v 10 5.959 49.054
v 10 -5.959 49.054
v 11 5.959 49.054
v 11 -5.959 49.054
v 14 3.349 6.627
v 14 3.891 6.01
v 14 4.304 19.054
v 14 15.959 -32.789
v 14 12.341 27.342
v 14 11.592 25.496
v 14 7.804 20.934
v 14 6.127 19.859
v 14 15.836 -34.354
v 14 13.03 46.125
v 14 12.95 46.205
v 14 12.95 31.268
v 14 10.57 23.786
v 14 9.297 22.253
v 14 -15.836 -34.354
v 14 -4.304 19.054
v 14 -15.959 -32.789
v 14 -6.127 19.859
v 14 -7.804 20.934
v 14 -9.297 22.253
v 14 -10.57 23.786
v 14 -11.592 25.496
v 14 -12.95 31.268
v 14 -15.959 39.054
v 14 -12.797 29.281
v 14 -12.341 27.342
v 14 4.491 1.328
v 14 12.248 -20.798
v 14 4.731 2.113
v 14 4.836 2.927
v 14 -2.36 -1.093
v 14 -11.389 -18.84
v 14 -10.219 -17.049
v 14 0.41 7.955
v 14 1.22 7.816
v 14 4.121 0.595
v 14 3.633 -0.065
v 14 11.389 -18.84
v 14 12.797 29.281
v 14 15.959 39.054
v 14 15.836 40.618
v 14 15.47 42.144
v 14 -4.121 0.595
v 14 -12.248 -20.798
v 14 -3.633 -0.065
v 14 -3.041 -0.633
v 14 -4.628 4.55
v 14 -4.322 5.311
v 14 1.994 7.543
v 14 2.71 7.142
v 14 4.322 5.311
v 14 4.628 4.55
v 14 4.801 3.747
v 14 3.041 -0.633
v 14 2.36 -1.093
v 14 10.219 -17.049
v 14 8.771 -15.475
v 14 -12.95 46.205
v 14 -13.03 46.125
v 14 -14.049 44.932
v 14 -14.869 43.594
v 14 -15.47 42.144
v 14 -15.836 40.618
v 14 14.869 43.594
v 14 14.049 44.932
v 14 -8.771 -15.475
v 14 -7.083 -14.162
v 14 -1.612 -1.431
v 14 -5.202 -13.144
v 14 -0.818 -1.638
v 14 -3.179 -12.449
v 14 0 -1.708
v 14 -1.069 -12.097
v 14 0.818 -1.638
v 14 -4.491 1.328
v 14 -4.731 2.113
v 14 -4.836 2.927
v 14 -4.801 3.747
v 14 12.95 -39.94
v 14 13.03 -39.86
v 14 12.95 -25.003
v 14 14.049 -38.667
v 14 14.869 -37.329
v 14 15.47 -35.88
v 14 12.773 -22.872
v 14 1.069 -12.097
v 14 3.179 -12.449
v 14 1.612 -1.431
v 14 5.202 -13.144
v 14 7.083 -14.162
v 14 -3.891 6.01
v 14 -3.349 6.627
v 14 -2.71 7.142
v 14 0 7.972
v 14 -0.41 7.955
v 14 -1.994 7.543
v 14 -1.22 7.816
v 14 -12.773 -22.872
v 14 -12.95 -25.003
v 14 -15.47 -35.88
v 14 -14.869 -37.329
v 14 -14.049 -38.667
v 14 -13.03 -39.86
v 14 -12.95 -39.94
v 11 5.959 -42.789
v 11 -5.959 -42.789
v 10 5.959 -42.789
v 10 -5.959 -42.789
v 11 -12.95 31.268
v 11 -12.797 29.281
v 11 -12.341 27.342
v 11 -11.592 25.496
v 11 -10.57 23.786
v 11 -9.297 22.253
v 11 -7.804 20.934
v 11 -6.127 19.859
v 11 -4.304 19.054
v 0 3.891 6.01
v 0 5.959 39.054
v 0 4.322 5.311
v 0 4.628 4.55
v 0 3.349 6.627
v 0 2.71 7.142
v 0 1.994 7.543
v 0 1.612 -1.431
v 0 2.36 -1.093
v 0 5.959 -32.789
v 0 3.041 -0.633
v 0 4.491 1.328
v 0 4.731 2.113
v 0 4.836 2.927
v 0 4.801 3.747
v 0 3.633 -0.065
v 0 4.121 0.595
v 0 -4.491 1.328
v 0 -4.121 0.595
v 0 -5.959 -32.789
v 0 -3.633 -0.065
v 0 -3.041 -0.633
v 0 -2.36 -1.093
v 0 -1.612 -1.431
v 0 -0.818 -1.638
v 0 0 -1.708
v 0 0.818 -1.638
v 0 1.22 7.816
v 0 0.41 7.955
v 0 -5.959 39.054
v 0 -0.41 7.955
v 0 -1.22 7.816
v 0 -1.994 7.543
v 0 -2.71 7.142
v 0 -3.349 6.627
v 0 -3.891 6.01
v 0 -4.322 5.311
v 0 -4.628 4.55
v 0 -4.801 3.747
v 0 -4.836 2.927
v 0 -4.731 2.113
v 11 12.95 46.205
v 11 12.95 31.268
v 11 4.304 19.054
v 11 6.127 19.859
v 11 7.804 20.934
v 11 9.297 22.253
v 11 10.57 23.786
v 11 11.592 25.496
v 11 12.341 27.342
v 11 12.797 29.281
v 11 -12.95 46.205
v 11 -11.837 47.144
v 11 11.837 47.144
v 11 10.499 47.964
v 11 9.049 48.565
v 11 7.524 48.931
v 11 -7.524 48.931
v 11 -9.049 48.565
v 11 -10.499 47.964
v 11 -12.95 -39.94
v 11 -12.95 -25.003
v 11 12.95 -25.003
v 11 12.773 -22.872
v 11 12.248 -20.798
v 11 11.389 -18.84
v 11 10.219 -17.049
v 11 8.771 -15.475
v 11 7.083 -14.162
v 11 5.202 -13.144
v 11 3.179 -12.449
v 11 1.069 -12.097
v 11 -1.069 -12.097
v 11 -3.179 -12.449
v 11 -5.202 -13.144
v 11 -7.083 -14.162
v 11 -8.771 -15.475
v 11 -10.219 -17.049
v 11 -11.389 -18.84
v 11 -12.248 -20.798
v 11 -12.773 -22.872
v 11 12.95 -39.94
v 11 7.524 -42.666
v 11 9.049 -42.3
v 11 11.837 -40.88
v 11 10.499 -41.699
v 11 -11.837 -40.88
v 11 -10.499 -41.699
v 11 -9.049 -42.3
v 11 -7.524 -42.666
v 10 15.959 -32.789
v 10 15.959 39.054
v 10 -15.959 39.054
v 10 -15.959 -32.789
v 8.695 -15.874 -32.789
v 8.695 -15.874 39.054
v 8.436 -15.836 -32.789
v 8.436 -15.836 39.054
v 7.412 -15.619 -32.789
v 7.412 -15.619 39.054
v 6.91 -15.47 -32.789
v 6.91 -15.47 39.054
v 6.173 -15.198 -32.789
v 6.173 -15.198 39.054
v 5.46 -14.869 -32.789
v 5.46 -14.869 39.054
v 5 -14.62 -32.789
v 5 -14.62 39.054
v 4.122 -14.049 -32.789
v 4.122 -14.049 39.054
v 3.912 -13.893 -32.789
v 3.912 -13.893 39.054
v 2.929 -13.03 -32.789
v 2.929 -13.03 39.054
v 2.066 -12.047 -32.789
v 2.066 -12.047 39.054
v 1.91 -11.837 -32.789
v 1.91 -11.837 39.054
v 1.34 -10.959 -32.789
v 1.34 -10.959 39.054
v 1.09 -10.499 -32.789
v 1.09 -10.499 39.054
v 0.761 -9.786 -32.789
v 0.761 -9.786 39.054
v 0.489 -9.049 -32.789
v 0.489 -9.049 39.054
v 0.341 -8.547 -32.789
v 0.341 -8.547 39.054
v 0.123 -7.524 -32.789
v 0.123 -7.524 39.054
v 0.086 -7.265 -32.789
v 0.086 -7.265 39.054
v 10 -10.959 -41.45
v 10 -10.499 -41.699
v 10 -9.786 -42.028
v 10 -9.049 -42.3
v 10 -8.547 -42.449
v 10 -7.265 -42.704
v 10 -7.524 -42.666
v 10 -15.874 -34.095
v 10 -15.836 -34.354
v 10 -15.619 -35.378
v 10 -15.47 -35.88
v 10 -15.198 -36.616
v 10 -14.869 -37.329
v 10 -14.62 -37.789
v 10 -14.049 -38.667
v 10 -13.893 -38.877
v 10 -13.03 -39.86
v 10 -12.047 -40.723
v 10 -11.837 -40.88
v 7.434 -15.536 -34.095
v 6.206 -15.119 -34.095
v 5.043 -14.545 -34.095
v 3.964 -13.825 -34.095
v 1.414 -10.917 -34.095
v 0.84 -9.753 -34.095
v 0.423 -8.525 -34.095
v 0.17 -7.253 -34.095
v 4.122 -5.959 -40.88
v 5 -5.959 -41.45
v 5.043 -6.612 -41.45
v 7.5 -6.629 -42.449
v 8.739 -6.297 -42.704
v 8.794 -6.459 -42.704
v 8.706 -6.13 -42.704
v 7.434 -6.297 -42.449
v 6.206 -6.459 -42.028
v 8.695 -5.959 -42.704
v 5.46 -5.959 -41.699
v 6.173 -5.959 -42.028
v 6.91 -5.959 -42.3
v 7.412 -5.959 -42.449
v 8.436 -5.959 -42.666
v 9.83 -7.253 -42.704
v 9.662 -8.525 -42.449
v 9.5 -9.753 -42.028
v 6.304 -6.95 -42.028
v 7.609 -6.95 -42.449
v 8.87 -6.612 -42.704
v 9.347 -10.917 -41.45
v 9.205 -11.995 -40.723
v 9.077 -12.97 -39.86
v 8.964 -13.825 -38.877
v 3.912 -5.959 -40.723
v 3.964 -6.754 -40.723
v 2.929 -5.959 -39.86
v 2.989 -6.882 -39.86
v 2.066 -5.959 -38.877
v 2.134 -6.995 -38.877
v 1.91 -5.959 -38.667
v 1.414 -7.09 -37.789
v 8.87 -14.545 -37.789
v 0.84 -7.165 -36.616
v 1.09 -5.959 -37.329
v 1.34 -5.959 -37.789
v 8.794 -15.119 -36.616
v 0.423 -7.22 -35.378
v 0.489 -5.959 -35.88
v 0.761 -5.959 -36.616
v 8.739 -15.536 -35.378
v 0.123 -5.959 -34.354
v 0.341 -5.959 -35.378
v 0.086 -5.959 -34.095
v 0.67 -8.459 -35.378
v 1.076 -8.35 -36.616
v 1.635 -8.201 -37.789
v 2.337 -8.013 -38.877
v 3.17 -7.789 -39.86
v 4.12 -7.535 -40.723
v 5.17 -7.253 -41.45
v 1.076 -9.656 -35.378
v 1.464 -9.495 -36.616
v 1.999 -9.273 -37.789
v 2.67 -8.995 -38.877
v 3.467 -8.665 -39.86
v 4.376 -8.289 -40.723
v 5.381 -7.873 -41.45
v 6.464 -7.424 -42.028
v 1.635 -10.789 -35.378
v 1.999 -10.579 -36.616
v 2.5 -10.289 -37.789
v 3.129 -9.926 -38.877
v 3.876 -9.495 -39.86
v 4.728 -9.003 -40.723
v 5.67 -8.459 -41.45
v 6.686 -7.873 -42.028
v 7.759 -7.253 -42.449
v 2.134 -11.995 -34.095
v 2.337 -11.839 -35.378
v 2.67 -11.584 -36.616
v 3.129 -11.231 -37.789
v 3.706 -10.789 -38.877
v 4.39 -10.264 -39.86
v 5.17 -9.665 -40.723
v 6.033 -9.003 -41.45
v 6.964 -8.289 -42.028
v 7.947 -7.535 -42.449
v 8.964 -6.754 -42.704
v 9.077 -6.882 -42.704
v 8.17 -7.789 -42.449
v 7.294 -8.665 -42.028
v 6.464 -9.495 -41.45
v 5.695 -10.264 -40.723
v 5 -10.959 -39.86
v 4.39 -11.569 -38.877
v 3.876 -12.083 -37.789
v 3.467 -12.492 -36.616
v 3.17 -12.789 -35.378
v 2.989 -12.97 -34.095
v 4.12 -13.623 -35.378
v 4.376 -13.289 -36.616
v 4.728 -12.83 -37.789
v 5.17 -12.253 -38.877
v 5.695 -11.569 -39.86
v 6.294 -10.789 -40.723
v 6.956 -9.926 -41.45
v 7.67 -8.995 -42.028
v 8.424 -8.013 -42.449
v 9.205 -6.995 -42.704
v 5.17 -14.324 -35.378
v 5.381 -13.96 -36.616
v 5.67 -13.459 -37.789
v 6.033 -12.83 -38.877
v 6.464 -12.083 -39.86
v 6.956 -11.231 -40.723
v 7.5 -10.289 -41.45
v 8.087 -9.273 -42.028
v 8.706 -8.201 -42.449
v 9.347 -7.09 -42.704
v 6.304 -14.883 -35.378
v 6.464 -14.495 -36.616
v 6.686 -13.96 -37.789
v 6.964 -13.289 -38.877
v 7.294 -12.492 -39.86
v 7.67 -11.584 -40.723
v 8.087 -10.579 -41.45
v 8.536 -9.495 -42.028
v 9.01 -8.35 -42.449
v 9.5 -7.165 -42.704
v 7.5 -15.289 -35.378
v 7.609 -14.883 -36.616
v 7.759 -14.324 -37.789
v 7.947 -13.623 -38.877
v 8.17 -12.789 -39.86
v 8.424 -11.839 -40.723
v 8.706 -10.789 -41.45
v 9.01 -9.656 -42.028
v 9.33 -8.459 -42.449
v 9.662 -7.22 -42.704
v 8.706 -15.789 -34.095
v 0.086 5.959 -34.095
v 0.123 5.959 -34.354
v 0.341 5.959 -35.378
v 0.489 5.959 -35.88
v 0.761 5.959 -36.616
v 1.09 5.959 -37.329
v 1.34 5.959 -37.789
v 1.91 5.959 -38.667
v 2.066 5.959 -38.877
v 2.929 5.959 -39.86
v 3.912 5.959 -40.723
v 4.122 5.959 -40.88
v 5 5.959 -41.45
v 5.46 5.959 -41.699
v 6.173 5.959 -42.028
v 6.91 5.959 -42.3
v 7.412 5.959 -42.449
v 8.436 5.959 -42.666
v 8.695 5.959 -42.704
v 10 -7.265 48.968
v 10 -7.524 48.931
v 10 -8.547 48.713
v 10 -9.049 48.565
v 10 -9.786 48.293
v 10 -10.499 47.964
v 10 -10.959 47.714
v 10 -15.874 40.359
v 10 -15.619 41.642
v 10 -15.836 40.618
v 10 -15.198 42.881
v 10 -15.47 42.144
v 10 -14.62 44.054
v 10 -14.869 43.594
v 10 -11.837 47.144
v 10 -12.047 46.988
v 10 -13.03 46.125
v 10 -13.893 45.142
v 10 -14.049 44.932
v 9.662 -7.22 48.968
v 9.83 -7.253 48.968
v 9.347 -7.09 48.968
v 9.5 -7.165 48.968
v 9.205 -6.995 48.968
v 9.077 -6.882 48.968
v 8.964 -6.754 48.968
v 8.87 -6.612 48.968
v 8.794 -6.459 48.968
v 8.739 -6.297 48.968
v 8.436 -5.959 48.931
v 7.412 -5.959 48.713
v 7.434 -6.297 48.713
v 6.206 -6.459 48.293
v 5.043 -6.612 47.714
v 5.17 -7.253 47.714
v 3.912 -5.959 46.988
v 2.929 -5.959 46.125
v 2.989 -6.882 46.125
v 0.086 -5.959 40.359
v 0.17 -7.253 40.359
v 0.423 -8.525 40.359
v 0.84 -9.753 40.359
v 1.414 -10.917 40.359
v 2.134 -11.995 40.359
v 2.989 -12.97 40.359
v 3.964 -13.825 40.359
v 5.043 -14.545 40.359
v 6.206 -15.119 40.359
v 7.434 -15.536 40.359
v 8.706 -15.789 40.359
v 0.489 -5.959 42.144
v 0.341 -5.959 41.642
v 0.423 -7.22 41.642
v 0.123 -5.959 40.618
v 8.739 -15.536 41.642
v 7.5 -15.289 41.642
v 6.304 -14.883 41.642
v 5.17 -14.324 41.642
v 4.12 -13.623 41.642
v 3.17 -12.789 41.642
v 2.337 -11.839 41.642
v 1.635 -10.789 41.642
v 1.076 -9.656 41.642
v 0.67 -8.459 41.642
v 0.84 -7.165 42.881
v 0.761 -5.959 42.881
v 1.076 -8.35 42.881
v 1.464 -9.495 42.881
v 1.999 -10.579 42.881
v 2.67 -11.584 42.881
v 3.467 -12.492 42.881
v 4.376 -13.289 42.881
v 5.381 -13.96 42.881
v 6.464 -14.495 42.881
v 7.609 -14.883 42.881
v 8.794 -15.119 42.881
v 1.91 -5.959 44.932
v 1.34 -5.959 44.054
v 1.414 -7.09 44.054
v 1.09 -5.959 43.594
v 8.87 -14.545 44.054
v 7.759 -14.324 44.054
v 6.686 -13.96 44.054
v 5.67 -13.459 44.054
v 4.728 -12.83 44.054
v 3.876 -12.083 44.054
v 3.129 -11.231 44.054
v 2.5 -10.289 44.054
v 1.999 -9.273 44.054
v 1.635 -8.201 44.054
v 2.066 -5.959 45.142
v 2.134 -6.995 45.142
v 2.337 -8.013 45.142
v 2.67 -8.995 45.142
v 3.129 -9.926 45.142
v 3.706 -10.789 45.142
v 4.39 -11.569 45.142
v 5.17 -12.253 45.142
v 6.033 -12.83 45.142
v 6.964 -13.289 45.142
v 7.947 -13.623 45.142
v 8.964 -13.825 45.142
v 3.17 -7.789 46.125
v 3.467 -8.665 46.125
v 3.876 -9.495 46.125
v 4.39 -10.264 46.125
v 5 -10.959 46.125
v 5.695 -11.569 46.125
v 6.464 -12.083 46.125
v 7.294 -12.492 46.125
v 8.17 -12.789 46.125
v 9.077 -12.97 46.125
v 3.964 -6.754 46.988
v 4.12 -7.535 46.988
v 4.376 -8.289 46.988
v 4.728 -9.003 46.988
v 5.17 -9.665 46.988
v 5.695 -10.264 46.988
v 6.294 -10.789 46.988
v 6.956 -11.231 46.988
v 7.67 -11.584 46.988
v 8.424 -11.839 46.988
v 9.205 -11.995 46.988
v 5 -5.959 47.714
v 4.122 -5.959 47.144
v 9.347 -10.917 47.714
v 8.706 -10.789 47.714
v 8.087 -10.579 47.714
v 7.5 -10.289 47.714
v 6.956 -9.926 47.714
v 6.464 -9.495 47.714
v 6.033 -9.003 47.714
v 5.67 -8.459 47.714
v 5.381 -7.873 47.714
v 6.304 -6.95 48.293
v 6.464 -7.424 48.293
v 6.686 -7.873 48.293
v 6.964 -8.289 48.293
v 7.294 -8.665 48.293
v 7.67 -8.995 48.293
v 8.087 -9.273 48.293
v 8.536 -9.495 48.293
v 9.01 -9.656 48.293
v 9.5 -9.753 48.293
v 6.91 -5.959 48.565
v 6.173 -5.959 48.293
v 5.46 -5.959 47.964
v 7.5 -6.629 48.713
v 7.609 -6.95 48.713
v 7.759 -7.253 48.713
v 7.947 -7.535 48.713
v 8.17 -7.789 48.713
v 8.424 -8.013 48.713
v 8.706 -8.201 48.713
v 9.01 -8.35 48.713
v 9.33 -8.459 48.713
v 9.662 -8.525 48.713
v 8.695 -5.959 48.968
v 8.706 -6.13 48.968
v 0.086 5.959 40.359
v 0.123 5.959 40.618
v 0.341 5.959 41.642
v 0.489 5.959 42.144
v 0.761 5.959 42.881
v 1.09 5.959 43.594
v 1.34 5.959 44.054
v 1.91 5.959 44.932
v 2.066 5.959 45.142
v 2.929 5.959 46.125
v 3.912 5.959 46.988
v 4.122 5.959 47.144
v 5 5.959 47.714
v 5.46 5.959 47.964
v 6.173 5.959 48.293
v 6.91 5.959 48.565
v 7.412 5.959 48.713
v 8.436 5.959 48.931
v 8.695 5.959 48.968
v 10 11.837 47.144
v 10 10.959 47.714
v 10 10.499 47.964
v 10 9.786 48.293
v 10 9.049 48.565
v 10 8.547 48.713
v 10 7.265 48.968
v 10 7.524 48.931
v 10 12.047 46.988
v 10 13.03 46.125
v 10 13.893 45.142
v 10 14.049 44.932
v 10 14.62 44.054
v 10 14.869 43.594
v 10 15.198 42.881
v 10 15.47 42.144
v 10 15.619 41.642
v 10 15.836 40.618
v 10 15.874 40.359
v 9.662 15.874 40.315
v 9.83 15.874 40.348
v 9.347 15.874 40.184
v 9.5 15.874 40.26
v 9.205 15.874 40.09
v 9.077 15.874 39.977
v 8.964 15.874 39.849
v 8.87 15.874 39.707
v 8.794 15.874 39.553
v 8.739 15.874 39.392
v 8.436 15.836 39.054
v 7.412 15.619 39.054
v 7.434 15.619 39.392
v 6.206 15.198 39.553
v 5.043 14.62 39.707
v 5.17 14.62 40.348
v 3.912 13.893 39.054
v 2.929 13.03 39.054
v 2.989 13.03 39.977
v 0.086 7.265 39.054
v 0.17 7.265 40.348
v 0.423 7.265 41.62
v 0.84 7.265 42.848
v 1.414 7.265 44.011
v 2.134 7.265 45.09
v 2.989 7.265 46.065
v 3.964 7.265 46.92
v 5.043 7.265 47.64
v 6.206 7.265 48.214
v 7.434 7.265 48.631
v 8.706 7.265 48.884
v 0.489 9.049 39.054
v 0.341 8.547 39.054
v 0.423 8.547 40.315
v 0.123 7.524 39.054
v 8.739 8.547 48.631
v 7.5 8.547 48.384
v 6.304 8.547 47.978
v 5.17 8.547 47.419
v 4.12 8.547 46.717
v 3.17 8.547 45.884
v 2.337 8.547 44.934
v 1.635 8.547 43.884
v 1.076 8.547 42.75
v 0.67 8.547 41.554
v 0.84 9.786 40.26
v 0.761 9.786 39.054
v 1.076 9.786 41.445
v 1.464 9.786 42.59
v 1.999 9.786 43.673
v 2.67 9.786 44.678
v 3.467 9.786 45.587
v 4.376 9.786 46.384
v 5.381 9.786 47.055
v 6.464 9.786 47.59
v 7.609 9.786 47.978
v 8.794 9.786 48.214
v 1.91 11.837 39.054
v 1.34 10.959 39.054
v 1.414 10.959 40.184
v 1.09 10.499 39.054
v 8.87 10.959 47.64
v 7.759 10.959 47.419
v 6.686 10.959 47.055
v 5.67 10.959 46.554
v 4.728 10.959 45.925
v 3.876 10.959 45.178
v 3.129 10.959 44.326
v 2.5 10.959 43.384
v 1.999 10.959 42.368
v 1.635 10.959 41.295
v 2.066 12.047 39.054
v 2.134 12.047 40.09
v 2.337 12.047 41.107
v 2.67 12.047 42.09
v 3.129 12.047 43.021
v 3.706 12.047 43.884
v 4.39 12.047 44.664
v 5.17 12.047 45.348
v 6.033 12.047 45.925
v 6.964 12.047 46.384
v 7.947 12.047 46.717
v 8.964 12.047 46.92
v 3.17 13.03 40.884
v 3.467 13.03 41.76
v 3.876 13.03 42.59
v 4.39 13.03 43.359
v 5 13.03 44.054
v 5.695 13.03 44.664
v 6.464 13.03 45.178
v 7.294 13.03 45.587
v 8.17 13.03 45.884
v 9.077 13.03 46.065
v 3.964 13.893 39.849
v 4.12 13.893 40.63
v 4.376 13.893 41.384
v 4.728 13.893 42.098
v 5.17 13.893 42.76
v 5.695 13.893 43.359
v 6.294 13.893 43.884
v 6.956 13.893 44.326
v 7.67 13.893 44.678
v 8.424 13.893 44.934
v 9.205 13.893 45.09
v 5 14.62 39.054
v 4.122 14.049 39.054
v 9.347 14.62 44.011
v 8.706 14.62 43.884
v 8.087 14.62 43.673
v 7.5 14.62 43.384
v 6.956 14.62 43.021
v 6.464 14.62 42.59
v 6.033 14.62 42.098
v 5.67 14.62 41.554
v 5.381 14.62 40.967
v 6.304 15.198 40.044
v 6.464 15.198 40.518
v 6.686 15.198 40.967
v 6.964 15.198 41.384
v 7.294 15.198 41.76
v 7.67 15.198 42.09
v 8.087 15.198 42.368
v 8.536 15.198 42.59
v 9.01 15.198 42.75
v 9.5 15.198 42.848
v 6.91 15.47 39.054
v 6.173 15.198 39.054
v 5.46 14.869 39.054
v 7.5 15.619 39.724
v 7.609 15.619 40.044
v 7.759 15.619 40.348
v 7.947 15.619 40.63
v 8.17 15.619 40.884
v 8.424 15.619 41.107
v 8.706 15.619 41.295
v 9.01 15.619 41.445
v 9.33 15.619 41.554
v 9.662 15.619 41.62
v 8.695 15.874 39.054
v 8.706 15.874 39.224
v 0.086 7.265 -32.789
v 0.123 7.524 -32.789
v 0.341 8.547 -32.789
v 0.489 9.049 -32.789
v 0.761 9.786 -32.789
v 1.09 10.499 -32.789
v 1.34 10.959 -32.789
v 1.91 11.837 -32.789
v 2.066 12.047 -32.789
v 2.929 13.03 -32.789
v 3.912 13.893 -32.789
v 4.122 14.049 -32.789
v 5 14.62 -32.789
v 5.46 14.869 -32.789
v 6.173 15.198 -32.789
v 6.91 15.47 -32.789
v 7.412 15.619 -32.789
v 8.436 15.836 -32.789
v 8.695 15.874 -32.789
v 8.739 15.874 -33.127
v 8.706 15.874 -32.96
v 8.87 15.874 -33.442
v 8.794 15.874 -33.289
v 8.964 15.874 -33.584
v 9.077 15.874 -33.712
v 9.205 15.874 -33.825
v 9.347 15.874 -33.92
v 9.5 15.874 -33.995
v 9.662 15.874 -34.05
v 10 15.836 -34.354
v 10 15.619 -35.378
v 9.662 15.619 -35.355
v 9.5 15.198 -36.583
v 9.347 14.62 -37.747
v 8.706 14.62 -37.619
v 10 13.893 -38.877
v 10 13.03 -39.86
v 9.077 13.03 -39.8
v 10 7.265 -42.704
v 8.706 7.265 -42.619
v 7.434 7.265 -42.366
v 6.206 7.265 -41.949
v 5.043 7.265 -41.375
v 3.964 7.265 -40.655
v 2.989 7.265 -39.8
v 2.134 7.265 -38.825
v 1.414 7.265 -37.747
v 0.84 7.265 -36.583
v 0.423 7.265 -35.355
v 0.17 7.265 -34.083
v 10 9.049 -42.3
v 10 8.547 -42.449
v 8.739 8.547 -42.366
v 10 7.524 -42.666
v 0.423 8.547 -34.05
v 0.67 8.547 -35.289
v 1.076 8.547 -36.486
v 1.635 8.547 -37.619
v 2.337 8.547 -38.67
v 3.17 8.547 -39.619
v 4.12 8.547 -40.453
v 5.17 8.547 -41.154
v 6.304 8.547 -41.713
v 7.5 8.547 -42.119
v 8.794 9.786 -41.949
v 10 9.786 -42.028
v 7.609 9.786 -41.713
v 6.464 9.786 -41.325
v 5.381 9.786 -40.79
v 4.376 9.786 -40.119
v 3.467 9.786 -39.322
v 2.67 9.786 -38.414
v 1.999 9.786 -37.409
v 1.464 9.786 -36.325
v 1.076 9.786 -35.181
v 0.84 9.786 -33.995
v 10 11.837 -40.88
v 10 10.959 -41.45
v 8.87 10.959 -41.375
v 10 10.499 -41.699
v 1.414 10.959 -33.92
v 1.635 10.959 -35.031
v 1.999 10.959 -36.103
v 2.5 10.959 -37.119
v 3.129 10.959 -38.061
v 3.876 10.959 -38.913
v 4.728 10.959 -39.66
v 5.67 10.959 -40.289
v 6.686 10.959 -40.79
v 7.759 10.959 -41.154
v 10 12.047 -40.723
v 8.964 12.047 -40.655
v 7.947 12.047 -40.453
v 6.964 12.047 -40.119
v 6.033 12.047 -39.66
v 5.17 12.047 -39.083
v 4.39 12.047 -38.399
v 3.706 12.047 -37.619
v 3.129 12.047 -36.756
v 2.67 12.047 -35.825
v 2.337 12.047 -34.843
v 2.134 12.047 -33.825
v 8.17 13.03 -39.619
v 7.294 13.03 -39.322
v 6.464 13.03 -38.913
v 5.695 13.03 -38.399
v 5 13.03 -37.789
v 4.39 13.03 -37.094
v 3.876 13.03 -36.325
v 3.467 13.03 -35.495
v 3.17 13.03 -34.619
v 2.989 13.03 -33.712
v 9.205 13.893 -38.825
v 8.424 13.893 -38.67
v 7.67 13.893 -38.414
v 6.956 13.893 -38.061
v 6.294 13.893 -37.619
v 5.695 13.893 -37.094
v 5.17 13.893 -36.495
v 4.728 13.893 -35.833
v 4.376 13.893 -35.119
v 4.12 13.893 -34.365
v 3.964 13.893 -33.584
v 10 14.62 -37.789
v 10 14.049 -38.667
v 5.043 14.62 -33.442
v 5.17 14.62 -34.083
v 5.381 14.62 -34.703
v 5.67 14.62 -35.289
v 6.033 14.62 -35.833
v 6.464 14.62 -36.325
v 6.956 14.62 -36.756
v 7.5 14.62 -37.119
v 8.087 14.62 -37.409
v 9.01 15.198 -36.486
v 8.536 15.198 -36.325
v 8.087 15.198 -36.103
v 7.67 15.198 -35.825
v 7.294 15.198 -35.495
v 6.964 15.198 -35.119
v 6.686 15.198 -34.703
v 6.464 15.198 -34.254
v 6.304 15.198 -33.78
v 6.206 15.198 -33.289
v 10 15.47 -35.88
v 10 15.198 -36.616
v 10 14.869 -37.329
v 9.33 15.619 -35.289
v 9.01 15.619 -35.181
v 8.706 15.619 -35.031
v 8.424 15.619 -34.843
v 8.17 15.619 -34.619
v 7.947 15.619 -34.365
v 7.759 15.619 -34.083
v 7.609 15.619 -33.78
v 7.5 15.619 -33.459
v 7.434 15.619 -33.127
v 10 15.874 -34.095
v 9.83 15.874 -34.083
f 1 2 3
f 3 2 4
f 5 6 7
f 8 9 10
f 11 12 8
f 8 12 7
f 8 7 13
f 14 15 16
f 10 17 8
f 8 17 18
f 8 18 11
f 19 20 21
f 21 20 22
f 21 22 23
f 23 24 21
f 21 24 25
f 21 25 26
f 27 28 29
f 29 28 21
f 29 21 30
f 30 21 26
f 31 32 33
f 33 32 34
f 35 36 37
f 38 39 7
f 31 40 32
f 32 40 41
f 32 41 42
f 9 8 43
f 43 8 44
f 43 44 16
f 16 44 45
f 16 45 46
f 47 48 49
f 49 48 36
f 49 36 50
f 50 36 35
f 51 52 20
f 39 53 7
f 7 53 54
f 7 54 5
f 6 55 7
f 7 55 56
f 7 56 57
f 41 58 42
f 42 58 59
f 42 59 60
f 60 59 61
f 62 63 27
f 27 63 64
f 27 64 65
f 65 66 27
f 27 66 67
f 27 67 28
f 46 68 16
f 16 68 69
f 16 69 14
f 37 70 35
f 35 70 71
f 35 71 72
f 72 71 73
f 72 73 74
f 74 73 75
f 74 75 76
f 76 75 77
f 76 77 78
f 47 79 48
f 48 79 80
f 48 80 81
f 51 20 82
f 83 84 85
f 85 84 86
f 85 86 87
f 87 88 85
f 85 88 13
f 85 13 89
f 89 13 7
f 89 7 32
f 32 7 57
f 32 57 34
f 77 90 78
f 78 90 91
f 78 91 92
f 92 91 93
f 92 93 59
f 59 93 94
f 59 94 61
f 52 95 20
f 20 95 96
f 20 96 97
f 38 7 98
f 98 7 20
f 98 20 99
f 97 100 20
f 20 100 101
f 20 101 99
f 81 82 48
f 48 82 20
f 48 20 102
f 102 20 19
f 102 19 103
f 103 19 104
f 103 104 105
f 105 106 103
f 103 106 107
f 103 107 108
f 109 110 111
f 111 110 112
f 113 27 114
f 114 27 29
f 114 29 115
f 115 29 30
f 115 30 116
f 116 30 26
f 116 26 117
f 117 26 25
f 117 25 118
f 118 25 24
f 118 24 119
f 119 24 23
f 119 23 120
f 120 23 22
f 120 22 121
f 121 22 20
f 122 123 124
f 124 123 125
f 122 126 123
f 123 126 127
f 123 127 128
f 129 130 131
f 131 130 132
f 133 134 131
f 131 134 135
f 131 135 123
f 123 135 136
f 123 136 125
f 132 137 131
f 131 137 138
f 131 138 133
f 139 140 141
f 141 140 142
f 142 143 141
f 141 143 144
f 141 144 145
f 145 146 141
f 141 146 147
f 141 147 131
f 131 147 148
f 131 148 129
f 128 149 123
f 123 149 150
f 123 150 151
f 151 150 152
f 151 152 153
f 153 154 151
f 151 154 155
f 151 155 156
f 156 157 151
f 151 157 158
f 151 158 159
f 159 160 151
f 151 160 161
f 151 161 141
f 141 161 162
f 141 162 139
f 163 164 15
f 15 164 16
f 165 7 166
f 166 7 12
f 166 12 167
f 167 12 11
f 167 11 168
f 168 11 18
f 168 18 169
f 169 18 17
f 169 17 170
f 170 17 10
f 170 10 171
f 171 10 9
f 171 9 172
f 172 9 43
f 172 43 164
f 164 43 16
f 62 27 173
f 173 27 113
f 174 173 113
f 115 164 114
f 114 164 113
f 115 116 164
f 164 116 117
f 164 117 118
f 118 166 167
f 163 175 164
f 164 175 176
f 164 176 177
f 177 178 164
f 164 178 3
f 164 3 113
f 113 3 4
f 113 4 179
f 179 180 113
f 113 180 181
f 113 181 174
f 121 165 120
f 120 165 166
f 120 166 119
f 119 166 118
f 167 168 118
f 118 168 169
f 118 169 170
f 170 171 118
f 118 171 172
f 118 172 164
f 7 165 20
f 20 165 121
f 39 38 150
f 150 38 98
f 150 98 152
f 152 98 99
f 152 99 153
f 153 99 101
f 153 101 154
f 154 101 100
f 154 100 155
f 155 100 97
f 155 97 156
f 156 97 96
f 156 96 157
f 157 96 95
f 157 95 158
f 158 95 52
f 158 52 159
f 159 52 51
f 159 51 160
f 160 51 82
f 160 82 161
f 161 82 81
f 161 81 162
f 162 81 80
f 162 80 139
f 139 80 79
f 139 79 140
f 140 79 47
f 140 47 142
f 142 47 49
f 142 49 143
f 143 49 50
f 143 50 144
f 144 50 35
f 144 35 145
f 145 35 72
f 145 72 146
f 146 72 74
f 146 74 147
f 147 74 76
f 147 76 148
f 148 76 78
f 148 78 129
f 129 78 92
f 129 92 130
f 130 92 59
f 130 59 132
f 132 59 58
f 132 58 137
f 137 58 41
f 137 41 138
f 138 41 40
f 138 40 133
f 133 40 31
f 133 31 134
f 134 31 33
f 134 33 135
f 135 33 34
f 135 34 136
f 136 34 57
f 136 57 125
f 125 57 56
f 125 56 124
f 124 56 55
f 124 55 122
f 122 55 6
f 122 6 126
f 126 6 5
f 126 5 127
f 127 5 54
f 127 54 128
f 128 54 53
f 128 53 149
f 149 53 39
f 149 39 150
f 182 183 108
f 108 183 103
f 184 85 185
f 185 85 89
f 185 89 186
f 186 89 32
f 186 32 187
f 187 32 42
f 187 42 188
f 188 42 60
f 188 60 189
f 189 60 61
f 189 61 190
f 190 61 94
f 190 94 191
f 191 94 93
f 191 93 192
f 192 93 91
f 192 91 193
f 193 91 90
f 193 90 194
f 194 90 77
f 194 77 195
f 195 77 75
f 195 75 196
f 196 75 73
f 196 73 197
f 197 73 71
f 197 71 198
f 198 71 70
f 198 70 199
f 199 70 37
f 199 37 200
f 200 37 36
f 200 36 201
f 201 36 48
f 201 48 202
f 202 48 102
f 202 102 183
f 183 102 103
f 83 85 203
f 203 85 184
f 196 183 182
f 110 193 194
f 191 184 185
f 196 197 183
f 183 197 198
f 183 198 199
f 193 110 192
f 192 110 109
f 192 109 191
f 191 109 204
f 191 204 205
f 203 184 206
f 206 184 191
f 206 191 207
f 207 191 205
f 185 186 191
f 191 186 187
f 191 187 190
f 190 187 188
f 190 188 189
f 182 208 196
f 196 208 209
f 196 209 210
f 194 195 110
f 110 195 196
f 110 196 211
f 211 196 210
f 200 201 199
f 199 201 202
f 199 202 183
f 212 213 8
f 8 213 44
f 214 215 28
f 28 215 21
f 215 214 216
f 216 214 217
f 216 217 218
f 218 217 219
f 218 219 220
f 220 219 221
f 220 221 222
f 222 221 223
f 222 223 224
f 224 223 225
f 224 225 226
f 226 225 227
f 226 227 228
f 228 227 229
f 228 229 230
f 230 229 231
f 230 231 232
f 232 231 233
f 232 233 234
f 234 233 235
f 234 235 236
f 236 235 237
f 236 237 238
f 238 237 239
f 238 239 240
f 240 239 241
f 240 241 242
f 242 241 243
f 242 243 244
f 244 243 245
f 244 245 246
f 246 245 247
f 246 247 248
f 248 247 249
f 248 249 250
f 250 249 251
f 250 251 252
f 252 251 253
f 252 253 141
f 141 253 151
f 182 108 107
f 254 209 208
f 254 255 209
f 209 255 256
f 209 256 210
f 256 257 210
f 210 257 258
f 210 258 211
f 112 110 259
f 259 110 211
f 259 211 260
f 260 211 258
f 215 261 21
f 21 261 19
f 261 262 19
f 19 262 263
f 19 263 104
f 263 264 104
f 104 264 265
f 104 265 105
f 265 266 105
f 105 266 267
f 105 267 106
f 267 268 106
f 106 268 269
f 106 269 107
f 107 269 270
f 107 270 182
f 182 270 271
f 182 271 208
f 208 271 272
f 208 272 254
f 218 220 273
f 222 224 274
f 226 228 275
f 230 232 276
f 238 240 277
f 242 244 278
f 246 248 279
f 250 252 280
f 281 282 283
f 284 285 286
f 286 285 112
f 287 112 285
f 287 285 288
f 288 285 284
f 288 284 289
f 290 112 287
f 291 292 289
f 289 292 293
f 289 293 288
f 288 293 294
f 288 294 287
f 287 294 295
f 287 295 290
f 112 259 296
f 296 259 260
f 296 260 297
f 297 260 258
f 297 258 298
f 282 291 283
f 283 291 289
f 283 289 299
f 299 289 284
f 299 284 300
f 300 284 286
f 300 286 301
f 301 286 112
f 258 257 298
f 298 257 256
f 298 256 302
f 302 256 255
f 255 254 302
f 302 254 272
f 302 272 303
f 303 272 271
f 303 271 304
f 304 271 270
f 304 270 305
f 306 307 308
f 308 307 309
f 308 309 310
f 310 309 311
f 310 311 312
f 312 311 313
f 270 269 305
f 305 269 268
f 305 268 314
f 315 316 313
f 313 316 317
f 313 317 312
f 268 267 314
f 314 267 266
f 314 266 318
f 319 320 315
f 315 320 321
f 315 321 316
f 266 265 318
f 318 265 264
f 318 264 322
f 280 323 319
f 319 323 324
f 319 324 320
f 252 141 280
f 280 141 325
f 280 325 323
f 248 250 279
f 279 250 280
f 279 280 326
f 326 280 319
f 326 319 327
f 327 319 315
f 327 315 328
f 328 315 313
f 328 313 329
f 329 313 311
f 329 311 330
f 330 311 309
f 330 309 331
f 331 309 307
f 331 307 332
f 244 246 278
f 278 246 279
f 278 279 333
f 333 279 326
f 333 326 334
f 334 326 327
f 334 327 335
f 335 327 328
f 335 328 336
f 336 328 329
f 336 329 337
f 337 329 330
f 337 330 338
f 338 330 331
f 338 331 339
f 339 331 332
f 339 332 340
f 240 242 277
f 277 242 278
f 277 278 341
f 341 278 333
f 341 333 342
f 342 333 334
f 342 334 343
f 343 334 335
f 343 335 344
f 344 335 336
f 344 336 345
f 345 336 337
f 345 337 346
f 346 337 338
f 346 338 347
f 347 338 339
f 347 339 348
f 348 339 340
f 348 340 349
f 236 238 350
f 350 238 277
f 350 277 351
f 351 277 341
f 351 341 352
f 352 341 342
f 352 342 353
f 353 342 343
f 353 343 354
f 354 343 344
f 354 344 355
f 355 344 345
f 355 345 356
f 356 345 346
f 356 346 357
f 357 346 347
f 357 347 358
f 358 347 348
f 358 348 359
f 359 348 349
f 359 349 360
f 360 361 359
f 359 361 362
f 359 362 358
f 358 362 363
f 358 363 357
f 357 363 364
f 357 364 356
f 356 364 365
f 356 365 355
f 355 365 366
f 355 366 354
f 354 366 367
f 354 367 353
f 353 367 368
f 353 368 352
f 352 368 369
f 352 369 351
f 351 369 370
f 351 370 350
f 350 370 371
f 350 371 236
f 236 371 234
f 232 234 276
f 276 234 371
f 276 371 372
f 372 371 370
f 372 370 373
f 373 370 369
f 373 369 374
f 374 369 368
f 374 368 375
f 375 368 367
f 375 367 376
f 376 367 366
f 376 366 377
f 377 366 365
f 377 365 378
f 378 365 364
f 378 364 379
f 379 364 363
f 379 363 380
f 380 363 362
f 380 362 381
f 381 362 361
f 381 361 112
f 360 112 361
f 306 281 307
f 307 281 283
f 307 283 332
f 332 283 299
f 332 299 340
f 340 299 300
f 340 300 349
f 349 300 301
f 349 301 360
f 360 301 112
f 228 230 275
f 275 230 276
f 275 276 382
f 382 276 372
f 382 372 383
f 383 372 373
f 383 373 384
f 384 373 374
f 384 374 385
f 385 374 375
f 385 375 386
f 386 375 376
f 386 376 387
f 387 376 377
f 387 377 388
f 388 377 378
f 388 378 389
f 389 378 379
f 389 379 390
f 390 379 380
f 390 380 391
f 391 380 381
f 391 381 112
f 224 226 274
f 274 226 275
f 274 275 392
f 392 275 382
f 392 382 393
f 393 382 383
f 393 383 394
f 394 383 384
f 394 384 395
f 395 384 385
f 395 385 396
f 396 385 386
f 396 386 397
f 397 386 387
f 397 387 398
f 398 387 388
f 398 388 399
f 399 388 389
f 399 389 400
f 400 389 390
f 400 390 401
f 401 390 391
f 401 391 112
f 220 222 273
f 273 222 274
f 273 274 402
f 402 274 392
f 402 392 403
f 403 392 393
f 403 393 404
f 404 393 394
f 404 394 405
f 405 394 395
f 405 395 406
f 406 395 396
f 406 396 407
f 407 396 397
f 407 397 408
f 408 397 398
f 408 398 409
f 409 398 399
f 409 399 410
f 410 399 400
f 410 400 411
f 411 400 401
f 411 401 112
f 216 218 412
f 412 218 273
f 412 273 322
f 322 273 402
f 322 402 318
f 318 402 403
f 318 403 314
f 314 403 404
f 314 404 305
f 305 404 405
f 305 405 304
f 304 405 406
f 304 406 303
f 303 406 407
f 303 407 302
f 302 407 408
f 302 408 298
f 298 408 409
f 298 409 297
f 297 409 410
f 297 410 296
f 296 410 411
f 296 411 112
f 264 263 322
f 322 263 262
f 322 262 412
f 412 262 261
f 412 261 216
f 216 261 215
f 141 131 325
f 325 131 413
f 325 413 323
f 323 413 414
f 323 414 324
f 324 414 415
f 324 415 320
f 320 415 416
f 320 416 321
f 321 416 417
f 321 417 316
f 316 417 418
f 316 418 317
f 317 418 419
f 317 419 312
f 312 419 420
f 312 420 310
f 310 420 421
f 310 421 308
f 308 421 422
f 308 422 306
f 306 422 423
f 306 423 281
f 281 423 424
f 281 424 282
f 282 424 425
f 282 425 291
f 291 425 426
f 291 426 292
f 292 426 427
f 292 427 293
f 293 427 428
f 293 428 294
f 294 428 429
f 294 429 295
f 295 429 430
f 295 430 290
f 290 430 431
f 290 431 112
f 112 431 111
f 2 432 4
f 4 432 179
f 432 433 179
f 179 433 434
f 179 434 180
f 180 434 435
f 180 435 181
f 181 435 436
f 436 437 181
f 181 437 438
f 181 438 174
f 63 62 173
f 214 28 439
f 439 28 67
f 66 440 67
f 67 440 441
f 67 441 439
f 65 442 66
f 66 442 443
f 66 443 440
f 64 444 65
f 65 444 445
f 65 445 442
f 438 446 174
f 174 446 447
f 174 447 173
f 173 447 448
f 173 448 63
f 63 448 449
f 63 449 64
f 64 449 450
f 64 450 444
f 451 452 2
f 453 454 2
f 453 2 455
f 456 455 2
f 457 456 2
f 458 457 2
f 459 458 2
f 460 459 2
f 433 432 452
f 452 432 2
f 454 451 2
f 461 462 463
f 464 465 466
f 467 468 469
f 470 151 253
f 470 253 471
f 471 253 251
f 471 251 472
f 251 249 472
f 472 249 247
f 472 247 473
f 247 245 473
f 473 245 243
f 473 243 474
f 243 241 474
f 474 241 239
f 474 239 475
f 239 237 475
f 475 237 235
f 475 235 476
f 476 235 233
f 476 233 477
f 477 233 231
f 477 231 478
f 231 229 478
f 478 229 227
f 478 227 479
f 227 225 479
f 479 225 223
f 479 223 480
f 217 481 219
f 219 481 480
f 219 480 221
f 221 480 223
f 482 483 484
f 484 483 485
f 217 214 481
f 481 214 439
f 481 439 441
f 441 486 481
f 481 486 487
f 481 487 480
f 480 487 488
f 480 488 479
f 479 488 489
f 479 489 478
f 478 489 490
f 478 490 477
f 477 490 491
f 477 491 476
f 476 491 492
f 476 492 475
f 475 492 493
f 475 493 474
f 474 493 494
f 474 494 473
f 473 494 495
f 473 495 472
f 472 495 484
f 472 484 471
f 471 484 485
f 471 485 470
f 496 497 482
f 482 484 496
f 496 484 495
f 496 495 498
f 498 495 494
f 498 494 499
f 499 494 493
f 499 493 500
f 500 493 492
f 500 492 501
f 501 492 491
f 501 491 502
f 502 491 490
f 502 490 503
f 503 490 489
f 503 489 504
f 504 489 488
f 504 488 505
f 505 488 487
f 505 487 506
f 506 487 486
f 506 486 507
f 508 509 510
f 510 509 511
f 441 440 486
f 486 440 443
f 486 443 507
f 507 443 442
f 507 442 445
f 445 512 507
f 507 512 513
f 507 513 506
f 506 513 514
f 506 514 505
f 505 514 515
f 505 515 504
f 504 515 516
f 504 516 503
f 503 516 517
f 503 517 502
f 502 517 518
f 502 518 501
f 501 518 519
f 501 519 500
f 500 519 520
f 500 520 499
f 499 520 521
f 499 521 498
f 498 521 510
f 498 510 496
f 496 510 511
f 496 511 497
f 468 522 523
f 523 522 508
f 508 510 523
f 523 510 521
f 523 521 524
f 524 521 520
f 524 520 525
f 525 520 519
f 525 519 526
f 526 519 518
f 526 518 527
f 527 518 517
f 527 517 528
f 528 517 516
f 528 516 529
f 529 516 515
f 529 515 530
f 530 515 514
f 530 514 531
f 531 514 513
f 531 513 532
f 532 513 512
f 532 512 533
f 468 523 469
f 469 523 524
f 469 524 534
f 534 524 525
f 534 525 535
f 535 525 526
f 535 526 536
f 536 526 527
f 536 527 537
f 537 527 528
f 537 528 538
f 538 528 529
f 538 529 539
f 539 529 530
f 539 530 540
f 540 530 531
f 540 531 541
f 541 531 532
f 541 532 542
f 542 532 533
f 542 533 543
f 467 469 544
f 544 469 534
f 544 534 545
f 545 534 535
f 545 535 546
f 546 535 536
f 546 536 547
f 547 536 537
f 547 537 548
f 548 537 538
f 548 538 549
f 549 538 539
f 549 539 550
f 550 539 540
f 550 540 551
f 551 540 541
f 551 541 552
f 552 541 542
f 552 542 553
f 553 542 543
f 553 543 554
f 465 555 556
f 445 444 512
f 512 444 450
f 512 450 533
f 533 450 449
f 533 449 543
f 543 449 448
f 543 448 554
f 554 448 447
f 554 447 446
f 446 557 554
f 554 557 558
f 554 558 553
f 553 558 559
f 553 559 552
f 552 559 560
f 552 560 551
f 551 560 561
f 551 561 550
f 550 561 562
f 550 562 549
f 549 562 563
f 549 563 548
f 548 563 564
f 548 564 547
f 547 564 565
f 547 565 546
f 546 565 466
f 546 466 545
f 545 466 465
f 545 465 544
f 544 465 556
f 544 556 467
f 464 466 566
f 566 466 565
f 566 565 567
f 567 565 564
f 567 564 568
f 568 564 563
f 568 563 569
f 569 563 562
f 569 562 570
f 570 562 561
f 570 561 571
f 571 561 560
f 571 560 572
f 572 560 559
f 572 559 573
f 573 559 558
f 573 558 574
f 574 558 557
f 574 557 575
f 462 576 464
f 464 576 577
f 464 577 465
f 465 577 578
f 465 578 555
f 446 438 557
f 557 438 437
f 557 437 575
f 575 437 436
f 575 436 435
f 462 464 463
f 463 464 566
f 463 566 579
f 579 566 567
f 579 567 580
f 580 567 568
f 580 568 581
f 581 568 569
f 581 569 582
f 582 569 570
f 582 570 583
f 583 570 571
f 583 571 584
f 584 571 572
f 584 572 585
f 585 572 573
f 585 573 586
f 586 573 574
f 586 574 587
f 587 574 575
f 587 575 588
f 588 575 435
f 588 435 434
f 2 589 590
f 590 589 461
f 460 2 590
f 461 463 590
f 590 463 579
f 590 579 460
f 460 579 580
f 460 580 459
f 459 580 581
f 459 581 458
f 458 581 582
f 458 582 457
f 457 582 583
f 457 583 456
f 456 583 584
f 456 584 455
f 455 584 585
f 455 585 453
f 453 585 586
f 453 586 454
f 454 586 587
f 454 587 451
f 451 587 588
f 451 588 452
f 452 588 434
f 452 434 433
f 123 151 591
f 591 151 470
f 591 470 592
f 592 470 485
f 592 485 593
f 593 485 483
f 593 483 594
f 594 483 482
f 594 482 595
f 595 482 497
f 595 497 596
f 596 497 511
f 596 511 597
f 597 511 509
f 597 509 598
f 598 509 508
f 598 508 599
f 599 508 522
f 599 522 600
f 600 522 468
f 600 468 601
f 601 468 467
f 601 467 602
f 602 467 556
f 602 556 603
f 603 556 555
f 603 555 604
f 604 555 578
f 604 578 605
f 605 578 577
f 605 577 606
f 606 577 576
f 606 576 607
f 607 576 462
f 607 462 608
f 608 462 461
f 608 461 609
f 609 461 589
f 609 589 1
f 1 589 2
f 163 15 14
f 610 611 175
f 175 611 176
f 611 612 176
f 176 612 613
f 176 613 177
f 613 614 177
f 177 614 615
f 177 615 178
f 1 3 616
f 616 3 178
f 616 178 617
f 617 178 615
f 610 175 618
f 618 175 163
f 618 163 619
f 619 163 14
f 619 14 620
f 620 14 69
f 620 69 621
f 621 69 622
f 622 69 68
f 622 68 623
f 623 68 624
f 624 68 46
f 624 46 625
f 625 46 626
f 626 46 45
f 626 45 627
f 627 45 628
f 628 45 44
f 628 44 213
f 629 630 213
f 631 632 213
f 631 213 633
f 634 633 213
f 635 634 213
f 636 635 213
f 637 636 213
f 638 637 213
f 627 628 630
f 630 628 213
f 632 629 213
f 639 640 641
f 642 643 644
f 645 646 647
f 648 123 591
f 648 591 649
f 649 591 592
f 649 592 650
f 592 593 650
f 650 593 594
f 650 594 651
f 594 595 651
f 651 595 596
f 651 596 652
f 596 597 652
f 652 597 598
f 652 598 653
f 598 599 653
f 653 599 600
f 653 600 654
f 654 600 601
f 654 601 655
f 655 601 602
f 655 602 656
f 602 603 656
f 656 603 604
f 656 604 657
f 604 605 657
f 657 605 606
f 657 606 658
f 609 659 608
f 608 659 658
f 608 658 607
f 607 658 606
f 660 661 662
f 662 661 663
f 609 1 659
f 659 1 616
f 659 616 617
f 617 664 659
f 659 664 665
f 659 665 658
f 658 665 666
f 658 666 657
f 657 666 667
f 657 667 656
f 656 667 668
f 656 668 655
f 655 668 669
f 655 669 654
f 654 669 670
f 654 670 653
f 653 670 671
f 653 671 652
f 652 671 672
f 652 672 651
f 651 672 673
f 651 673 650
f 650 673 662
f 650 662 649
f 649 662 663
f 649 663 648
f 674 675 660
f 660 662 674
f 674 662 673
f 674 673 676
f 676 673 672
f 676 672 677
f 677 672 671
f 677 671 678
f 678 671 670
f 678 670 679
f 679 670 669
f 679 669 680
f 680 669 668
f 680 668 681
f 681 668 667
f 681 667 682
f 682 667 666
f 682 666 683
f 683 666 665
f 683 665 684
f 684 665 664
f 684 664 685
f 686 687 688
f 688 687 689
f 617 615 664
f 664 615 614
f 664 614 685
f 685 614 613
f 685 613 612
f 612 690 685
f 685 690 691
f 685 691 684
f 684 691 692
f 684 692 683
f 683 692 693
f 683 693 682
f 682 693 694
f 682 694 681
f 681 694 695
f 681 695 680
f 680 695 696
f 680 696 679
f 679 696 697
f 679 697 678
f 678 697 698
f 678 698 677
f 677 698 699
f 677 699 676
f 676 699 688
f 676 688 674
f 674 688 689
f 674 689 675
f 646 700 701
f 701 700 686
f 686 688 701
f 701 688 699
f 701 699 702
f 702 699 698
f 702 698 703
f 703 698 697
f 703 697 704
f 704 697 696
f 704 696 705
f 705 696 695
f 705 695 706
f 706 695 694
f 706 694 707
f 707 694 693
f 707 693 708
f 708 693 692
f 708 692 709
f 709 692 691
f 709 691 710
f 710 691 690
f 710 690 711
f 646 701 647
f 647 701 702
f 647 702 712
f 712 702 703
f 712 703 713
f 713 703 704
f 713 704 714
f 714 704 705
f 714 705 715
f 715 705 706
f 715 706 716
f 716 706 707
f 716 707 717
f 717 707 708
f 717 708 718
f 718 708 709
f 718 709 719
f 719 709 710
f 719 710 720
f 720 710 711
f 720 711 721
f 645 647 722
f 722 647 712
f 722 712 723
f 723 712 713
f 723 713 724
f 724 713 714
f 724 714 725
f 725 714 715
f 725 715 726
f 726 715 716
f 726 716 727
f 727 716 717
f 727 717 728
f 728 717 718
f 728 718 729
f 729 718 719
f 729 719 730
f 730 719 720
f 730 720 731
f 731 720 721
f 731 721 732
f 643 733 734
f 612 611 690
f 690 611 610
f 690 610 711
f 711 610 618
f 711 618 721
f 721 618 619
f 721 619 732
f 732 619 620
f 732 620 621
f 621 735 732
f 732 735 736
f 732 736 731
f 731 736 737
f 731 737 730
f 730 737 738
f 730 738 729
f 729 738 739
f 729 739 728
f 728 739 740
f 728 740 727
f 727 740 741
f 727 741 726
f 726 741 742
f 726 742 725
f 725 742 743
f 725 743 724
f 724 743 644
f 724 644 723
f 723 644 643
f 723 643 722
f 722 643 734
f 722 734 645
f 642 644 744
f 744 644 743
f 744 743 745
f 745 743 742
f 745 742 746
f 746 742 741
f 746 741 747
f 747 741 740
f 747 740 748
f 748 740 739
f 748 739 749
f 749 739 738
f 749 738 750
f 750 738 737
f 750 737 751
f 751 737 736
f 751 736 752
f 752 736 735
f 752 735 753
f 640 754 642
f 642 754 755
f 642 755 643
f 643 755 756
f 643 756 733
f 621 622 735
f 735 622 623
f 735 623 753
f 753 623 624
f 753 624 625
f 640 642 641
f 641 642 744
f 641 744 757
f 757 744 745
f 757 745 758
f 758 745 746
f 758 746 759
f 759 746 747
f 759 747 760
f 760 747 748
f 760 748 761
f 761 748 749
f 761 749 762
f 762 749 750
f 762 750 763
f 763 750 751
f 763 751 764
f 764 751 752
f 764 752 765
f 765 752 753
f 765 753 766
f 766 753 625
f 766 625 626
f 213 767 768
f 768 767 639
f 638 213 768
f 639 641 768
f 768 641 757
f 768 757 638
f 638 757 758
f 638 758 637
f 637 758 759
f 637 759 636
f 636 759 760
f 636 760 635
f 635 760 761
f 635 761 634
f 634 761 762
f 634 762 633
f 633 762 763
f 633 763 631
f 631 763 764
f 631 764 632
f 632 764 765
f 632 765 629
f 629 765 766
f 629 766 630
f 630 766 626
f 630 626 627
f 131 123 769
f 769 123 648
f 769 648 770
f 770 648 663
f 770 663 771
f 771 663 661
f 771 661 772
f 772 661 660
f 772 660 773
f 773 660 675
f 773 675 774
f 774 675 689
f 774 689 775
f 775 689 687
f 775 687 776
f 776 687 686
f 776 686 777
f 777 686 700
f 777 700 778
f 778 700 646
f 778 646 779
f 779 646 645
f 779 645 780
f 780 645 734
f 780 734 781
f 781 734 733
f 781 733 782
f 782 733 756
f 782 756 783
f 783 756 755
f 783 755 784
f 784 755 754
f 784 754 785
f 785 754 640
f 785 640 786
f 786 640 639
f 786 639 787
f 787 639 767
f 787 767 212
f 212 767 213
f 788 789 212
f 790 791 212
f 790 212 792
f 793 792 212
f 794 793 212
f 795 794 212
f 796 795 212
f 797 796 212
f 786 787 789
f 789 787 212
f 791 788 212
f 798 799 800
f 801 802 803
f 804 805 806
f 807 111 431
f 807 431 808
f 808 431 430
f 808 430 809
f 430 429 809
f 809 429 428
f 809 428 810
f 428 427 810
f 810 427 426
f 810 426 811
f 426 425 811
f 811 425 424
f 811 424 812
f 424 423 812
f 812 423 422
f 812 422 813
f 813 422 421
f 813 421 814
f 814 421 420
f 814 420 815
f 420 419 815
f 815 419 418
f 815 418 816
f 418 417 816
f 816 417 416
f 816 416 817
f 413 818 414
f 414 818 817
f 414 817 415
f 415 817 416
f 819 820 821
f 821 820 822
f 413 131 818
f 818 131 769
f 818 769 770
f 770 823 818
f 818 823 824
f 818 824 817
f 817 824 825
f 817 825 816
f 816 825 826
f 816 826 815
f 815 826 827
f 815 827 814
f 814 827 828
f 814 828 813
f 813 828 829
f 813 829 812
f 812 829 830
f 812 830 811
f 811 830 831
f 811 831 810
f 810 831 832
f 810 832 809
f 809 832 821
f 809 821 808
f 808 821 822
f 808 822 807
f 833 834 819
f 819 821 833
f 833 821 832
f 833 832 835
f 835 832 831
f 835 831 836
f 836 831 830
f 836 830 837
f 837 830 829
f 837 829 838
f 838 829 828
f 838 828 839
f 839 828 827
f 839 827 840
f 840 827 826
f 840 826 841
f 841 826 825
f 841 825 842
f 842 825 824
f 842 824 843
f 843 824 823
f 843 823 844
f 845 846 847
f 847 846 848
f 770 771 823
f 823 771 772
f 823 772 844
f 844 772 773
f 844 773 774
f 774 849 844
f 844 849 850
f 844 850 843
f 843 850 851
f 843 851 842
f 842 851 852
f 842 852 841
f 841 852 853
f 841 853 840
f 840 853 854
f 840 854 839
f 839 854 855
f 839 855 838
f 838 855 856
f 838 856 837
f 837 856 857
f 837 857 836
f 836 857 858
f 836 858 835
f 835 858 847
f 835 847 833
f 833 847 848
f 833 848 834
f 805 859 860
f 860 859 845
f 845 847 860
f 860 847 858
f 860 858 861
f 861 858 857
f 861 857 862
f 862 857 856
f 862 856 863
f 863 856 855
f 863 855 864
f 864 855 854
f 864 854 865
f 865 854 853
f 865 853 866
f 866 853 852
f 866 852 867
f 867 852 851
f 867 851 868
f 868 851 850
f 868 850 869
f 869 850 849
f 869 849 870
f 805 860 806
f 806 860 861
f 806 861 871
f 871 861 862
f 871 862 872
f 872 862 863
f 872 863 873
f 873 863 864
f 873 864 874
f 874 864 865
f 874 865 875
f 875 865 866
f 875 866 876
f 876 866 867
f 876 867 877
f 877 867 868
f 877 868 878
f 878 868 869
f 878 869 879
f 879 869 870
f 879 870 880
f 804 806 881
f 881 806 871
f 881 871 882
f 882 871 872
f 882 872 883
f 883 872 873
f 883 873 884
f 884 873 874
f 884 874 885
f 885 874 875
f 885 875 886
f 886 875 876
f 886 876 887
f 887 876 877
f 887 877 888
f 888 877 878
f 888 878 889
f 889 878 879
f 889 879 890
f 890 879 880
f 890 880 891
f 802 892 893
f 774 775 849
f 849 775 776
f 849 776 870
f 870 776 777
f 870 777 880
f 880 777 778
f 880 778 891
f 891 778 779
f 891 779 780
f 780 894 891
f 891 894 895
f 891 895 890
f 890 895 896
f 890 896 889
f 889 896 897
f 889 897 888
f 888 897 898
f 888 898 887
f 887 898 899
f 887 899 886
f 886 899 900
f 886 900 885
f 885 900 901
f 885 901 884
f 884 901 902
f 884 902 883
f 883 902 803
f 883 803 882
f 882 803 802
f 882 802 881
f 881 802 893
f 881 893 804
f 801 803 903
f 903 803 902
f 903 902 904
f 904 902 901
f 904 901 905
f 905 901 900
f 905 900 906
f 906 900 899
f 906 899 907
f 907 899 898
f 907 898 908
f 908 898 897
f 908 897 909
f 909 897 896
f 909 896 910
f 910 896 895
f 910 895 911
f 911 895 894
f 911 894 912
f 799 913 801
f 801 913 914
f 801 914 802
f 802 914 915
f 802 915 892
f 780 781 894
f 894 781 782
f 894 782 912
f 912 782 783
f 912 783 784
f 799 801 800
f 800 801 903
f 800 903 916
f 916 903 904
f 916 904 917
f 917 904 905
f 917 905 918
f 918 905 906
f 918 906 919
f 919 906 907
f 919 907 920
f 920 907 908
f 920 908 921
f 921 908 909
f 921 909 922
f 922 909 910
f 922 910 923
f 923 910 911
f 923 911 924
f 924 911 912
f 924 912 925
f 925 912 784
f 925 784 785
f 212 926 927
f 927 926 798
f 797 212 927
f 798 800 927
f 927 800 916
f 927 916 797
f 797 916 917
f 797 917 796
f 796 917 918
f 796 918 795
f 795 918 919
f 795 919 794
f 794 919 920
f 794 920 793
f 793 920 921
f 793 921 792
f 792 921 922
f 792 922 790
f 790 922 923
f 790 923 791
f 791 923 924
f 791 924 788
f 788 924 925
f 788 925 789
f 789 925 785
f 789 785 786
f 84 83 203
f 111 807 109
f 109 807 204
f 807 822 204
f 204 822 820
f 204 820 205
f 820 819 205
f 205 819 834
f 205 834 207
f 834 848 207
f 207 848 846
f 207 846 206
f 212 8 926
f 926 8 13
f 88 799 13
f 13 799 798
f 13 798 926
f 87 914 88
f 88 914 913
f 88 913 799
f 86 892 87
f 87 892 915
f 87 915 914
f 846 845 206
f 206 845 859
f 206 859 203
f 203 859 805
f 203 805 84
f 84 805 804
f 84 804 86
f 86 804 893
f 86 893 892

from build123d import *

# Parameters (mm, degrees)
BOSS_EXTRUDE3_DEPTH = 14
SKETCH3_R           = 4.84
CUT_EXTRUDE3_DEPTH  = 14.0462
CUT_EXTRUDE4_DEPTH  = 3
SKETCH6_W           = 32.77755098
SKETCH6_H           = 97.199429117
CUT_EXTRUDE6_DEPTH  = 68.951679292
FILLET1_R           = 10
FILLET2_R           = 10
FILLET3_R           = 10
FILLET4_R           = 10


with BuildPart() as part:
    # Sketch1 → Boss-Extrude3 (new body)
    with BuildSketch(Plane.YZ):
        with BuildLine():
            Line((-28.968617751, -12.789334175), (28.968617751, -12.789334175))
            ThreePointArc((28.968617751, -12.789334175), (44.579120821, 0), (35.110840206, 17.821518929))
            ThreePointArc((35.110840206, 17.821518929), (30.644623053, 21.505675602), (28.968617751, 27.047436358))
            Line((28.968617751, 27.047436358), (28.968617751, 39.053986921))
            ThreePointArc((28.968617751, 39.053986921), (26.039685563, 46.125054733), (18.968617751, 49.053986921))
            Line((18.968617751, 49.053986921), (-18.968617751, 49.053986921))
            ThreePointArc((-18.968617751, 49.053986921), (-26.039685563, 46.125054733), (-28.968617751, 39.053986921))
            Line((-28.968617751, 39.053986921), (-28.968617751, 27.047436358))
            ThreePointArc((-28.968617751, 27.047436358), (-30.644623053, 21.505675602), (-35.110840206, 17.821518929))
            ThreePointArc((-35.110840206, 17.821518929), (-44.579120821, 0), (-28.968617751, -12.789334175))
        make_face()
    boss_extrude3 = extrude(amount=BOSS_EXTRUDE3_DEPTH)

    # Sketch3 → Cut-Extrude3 (cut)
    with BuildSketch(Plane.YZ.offset(14)):
        with Locations((0, 3.132326373)):
            Circle(SKETCH3_R)
    cut_extrude3 = extrude(amount=-CUT_EXTRUDE3_DEPTH, mode=Mode.SUBTRACT)

    # Sketch4 → Cut-Extrude4 (cut)
    with BuildSketch(Plane.YZ.offset(14)):
        with BuildLine():
            Line((-12.95, 49.053986921), (-12.95, 31.267703884))
            ThreePointArc((-12.95, 31.267703884), (0, 18.317703884), (12.95, 31.267703884))
            Line((12.95, 31.267703884), (12.95, 49.053986921))
            Line((12.95, 49.053986921), (-12.95, 49.053986921))
        make_face()
    cut_extrude4 = extrude(amount=-CUT_EXTRUDE4_DEPTH, mode=Mode.SUBTRACT)

    # Mirror1: Boss-Extrude3, Cut-Extrude3, Cut-Extrude4 across plane
    add(boss_extrude3.mirror(Plane.XY.offset(3.132326373)))
    add(cut_extrude3.mirror(Plane.XY.offset(3.132326373)), mode=Mode.SUBTRACT)
    add(cut_extrude4.mirror(Plane.XY.offset(3.132326373)), mode=Mode.SUBTRACT)

    # Sketch6 → Cut-Extrude6 (cut, through all)
    with BuildSketch(Plane.YZ.offset(14)):
        with Locations((-32.348084365, 0.454272362)):
            Rectangle(SKETCH6_W, SKETCH6_H)
        with Locations((32.348084365, 0.454272362)):
            Rectangle(SKETCH6_W, SKETCH6_H)
    extrude(amount=-CUT_EXTRUDE6_DEPTH, mode=Mode.SUBTRACT)

    # Fillet1
    fillet1_edges = [part.edges().sort_by_distance(p)[0] for p in [
        (0, -15.959308875, 3.132326373),
    ]]
    fillet(fillet1_edges, radius=FILLET1_R)

    # Fillet2
    fillet2_edges = [part.edges().sort_by_distance(p)[0] for p in [
        (0, 5, -42.789334175),
        (2.928932188, -13.030376687, -42.789334175),
        (12, -15.959308875, -42.789334175),
    ]]
    fillet(fillet2_edges, radius=FILLET2_R)

    # Fillet3
    fillet3_edges = [part.edges().sort_by_distance(p)[0] for p in [
        (0, 5, 49.053986921),
        (2.928932188, -13.030376687, 49.053986921),
        (12, -15.959308875, 49.053986921),
    ]]
    fillet(fillet3_edges, radius=FILLET3_R)

    # Fillet4
    fillet4_edges = [part.edges().sort_by_distance(p)[0] for p in [
        (12, 15.959308875, -42.789334175),
        (2.928932188, 15.959308875, -39.860401987),
        (0, 15.959308875, 3.132326373),
        (2.928932188, 15.959308875, 46.125054733),
        (12, 15.959308875, 49.053986921),
    ]]
    fillet(fillet4_edges, radius=FILLET4_R)


solid = part.part
